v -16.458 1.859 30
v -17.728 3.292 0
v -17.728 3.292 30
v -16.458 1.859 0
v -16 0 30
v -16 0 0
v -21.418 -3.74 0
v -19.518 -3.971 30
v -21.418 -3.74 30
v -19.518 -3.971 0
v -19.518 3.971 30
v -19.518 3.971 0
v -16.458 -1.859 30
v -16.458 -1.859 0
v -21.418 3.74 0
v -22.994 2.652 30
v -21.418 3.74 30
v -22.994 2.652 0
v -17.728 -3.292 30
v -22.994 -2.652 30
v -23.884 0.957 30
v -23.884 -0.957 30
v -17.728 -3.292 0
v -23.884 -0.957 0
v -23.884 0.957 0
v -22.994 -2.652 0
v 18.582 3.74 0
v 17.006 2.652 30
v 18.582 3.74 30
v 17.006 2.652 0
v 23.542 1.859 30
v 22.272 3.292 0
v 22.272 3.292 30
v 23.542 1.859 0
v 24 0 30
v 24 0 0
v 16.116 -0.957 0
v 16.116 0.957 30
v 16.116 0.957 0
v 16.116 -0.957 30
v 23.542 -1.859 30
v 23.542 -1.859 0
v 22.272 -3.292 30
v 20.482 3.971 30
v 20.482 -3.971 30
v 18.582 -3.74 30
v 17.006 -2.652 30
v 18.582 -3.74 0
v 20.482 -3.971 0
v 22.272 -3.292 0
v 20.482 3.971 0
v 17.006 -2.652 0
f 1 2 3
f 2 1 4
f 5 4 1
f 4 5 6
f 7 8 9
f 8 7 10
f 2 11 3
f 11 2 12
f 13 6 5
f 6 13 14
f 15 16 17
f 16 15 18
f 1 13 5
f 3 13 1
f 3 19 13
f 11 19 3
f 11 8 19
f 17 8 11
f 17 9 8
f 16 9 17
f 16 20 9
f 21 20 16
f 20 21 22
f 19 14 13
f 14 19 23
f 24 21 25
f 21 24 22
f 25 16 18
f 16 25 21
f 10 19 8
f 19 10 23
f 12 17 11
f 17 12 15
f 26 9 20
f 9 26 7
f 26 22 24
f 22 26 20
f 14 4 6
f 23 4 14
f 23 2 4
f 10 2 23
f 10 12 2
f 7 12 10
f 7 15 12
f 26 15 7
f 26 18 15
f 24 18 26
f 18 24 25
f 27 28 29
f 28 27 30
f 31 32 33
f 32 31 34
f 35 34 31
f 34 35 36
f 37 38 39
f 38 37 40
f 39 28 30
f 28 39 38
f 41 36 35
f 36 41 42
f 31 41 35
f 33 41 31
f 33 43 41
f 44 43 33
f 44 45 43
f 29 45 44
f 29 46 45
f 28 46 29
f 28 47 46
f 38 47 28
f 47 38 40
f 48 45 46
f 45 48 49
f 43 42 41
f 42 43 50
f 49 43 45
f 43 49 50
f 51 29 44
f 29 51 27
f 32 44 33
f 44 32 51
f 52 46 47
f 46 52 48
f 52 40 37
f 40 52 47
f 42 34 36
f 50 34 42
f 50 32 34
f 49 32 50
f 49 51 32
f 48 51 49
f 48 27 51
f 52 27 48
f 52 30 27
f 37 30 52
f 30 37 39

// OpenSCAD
/* doodle-meta {"version":1,"parameters":{"rod_diameter":{"label":"Rod Diameter","description":"Diameter of the circular cross-section of the handle","unit":"mm","feature":"rod_profile"},"arch_radius":{"label":"Arch Radius","description":"Radius of the semi-circular bend (centerline)","unit":"mm","feature":"arch"},"leg_length":{"label":"Leg Length","description":"Length of the straight vertical legs","unit":"mm","feature":"legs"}},"features":{"rod_profile":{"kind":"region","label":"Rod Cross-section","min":[0,0,0],"max":[0,0,0]},"arch":{"kind":"region","label":"Arch","min":[0,0,0],"max":[0,0,0]},"legs":{"kind":"region","label":"Legs","min":[0,0,0],"max":[0,0,0]}}} */

// Parameters
rod_diameter = 8;
arch_radius = 20;
leg_length = 30;

// Derived dimensions
r = rod_diameter / 2;
R = arch_radius;
L = leg_length;

// The handle is oriented with the U-shape in the XZ plane.
// Legs are vertical (along Z).
// Rod extends along Y.
// Bottom of legs at Z=0.

module handle() {
    // Left Leg
    // Cylinder axis is Z. Centered at Z=L/2 to span 0 to L.
    translate([-R, 0, L/2])
    cylinder(h=L, r=r, center=true);

    // Right Leg
    translate([R, 0, L/2])
    cylinder(h=L, r=r, center=true);

    // Arch (Upper half of torus)
    // Torus centered at (0,0,L)
    // Rotate 90 deg around X to put ring in XZ plane (axis Y)
    difference() {
        translate([0, 0, L])
        rotate([90, 0, 0])
        torus(R, r);
        
        // Cut off the bottom half (Z < L)
        // The torus is centered at Z=L.
        // We remove everything below Z=L.
        translate([-100, -100, L - 100])
        cube([200, 200, 100]);
    }
}

// Instantiate
handle();

// Helper module for Torus
module torus(R, r) {
    // Create a circle in the XZ plane (relative to local origin)
    // and revolve it around the Z axis.
    // The circle is centered at (R, 0, 0) in the XZ plane.
    // rotate_extrude revolves around Z.
    translate([R, 0, 0])
    rotate_extrude()
    circle(r=r);
}
